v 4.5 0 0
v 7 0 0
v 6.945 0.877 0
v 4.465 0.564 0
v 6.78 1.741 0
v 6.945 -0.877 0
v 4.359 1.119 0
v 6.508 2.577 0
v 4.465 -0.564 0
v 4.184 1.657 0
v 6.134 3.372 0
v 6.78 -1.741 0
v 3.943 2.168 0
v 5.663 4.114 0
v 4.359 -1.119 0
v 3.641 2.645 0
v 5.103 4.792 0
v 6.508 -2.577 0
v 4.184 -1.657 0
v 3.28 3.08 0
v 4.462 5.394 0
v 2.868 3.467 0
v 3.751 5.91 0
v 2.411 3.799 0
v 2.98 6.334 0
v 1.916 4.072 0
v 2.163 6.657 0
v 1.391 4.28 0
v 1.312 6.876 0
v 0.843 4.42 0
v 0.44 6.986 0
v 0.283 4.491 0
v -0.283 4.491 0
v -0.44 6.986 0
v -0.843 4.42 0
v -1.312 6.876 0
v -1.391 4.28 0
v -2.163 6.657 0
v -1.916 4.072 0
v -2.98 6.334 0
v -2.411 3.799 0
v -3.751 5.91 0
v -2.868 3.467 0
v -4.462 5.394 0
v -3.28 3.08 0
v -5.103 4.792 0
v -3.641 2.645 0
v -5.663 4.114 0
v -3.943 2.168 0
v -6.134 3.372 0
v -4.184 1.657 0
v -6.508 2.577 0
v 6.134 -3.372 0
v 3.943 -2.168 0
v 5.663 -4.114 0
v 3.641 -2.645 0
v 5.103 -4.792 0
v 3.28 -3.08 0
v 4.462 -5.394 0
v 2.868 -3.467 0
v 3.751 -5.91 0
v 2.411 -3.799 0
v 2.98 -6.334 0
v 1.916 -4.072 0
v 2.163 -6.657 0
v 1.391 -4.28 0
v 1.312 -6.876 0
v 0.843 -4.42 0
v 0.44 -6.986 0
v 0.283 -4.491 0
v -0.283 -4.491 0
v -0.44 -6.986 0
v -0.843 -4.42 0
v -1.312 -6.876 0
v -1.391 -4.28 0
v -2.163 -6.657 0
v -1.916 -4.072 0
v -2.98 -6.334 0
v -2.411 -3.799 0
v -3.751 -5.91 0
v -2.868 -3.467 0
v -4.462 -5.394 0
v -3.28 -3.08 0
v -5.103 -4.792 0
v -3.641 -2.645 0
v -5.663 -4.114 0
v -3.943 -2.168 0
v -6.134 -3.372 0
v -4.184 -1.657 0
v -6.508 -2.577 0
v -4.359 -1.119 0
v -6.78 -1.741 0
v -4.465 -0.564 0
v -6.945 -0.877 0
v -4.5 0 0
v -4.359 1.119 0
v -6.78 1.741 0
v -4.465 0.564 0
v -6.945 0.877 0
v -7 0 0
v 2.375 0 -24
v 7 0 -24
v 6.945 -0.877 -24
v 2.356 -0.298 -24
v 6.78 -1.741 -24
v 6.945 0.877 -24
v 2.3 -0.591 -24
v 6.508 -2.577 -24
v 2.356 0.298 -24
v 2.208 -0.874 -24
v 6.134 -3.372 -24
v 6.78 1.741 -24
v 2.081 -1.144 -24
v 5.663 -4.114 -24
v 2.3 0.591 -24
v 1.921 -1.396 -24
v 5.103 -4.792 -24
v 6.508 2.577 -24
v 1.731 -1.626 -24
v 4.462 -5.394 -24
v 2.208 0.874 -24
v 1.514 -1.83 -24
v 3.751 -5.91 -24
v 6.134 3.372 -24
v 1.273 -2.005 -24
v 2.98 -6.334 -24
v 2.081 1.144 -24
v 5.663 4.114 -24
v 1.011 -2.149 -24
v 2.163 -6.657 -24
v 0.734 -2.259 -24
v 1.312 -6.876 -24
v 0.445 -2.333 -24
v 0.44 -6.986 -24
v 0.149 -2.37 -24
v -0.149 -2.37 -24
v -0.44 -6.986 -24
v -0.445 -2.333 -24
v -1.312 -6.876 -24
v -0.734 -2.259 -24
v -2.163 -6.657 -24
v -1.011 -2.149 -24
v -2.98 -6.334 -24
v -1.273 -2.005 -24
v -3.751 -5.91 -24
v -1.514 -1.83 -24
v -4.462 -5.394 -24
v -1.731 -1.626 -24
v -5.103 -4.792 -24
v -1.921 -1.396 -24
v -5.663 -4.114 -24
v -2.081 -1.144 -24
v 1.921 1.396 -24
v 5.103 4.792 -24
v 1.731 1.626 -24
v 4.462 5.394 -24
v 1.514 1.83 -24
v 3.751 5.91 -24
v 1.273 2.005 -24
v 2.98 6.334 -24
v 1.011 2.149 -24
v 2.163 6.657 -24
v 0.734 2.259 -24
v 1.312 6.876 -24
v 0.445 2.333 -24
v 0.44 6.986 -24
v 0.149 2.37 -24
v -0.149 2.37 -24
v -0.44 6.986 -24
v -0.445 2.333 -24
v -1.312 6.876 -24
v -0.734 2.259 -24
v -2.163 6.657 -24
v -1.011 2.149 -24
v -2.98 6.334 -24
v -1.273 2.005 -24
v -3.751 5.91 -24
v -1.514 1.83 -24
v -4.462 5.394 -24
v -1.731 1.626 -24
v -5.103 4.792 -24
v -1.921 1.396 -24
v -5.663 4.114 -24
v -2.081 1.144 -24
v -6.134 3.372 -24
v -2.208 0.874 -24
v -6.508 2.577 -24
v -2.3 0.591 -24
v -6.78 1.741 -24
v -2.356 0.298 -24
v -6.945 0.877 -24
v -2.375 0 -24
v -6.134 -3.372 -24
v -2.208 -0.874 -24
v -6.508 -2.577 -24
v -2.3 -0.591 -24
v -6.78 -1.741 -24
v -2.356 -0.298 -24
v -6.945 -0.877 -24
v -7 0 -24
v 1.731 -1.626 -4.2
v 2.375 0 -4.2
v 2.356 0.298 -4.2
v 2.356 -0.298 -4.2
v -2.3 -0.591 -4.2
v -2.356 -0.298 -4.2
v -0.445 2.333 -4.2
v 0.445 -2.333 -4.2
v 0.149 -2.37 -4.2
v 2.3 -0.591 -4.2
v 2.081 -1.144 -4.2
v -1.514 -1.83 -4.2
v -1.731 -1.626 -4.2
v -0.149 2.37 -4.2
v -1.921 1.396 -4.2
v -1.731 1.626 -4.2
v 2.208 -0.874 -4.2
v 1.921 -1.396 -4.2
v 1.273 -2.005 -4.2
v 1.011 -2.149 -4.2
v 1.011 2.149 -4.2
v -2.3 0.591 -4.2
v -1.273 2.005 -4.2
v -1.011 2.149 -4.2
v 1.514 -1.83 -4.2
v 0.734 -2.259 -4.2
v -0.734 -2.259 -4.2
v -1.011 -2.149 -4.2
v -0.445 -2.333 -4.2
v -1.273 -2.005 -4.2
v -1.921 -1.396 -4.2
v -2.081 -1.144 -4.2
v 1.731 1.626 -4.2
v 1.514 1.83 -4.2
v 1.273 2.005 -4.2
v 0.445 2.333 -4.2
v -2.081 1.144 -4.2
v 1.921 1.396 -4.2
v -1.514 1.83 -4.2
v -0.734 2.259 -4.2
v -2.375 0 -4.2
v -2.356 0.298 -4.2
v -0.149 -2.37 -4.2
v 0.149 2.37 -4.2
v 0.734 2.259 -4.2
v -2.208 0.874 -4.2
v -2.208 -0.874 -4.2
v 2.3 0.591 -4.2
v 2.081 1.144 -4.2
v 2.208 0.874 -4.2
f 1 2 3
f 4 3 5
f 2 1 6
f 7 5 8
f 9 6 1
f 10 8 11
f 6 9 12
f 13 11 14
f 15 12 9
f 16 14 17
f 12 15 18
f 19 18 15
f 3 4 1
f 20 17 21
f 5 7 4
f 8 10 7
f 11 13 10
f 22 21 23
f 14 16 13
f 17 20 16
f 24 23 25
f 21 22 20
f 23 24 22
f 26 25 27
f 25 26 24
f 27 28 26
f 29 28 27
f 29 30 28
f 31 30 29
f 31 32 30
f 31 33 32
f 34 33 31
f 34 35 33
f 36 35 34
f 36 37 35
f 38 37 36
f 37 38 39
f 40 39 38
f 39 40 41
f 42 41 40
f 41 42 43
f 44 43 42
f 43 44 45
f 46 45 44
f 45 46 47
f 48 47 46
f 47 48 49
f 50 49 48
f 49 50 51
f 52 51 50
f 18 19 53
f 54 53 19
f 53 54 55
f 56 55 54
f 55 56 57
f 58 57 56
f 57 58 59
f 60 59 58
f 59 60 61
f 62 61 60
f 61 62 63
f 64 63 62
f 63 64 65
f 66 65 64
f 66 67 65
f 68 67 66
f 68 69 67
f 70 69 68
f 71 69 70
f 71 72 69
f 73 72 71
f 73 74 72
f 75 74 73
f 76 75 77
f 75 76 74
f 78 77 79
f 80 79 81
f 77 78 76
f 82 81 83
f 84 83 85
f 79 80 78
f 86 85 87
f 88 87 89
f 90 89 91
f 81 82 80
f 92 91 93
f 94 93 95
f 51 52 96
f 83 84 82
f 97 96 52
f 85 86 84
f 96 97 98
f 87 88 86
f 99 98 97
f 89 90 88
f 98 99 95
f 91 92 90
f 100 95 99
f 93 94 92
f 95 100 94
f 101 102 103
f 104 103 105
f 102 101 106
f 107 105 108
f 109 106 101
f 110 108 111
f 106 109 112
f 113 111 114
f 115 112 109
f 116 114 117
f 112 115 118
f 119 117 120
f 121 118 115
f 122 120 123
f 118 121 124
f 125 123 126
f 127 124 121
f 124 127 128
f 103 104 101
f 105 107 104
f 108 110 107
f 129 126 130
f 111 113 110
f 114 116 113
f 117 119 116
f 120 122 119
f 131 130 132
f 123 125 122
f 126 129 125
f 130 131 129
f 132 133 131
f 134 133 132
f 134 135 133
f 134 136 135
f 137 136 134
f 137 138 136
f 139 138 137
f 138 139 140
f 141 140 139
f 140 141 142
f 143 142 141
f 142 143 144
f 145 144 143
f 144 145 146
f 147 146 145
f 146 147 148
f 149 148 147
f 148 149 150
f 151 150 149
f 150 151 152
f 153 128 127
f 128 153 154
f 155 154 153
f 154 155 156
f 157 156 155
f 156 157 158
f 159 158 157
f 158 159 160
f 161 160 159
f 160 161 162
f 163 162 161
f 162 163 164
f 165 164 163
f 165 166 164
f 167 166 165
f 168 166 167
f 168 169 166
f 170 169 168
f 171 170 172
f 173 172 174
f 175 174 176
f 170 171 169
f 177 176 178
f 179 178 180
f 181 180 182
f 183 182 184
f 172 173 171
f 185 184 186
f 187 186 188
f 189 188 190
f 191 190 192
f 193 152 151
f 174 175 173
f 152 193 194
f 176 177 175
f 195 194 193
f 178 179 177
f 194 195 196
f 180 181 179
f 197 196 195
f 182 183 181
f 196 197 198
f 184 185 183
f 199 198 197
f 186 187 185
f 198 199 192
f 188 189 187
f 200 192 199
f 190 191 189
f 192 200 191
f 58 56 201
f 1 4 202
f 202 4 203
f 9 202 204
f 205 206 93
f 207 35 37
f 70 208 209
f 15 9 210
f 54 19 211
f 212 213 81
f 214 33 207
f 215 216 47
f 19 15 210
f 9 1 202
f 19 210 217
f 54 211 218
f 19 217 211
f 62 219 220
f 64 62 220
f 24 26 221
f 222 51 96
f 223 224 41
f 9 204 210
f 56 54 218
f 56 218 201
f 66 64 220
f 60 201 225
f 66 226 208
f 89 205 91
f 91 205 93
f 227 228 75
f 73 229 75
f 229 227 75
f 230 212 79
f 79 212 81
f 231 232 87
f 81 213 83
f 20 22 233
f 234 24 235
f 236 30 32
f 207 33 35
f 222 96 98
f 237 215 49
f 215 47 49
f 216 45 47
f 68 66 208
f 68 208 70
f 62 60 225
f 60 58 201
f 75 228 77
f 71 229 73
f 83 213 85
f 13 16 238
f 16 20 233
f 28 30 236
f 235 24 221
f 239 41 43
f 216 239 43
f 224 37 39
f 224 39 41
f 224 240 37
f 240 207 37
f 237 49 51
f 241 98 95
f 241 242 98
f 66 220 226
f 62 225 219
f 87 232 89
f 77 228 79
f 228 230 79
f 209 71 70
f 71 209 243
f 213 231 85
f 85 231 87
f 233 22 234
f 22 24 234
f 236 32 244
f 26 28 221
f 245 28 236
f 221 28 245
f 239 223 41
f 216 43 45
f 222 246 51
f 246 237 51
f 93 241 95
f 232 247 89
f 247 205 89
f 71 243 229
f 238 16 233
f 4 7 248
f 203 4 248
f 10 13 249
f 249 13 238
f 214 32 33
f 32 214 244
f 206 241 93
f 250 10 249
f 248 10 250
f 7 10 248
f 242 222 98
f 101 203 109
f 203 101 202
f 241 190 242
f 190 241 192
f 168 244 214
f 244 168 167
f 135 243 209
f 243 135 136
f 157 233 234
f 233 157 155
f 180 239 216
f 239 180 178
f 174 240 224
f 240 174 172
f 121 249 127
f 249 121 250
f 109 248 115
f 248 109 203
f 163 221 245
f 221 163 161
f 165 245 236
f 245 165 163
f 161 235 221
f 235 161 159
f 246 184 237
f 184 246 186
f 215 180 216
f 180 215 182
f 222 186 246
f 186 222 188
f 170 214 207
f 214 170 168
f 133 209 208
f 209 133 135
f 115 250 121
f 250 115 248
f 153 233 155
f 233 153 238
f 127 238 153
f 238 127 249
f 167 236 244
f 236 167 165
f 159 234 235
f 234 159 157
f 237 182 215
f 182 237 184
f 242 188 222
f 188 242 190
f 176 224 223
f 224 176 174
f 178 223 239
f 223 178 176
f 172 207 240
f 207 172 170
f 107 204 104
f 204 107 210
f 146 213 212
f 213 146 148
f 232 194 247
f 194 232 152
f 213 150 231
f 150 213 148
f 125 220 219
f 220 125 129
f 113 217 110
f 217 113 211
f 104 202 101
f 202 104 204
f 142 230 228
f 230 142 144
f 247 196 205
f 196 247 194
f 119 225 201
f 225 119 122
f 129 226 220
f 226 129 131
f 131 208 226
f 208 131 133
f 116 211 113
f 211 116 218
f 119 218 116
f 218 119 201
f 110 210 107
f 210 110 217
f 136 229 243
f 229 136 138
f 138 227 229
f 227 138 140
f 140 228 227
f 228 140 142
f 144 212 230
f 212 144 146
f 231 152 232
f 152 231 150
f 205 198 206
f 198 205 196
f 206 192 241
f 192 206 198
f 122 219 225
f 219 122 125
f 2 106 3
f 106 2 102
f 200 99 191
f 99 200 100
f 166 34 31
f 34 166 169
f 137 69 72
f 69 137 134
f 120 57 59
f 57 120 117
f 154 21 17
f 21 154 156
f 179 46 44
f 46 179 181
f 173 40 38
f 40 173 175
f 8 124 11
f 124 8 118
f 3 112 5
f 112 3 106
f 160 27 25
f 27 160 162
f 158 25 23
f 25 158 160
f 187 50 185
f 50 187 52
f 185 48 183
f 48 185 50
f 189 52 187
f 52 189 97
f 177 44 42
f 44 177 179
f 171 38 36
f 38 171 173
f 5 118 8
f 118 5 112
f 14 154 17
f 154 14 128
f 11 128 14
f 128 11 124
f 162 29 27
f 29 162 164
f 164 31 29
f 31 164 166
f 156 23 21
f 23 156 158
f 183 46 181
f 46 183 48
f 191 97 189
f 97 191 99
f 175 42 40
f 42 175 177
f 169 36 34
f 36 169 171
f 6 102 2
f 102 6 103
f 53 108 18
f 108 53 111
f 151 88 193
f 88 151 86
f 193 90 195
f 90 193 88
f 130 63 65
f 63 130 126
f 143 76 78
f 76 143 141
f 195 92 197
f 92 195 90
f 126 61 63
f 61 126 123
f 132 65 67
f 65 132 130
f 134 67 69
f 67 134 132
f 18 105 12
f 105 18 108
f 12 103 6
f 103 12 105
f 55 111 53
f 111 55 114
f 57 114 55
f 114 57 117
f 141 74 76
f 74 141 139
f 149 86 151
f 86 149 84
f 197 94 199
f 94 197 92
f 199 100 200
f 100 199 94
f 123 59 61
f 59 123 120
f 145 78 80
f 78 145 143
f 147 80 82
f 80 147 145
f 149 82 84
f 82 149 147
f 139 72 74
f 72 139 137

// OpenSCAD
$fn = 50;


difference() {
	union() {
		translate(v = [0, 0, -24.0000000000]) {
			cylinder(h = 24, r = 7.0000000000);
		}
	}
	union() {
		translate(v = [0, 0, 0]) {
			rotate(a = [0, 0, 0]) {
				difference() {
					union() {
						#translate(v = [0, 0, -24.0000000000]) {
							cylinder(h = 24, r = 2.2500000000);
						}
						#translate(v = [0, 0, -4.2000000000]) {
							cylinder(h = 4.2000000000, r1 = 2.3750000000, r2 = 4.5000000000);
						}
						#translate(v = [0, 0, -24.0000000000]) {
							cylinder(h = 24, r = 2.3750000000);
						}
						#translate(v = [0, 0, -24.0000000000]) {
							cylinder(h = 24, r = 2.2500000000);
						}
					}
					union();
				}
			}
		}
	}
}
